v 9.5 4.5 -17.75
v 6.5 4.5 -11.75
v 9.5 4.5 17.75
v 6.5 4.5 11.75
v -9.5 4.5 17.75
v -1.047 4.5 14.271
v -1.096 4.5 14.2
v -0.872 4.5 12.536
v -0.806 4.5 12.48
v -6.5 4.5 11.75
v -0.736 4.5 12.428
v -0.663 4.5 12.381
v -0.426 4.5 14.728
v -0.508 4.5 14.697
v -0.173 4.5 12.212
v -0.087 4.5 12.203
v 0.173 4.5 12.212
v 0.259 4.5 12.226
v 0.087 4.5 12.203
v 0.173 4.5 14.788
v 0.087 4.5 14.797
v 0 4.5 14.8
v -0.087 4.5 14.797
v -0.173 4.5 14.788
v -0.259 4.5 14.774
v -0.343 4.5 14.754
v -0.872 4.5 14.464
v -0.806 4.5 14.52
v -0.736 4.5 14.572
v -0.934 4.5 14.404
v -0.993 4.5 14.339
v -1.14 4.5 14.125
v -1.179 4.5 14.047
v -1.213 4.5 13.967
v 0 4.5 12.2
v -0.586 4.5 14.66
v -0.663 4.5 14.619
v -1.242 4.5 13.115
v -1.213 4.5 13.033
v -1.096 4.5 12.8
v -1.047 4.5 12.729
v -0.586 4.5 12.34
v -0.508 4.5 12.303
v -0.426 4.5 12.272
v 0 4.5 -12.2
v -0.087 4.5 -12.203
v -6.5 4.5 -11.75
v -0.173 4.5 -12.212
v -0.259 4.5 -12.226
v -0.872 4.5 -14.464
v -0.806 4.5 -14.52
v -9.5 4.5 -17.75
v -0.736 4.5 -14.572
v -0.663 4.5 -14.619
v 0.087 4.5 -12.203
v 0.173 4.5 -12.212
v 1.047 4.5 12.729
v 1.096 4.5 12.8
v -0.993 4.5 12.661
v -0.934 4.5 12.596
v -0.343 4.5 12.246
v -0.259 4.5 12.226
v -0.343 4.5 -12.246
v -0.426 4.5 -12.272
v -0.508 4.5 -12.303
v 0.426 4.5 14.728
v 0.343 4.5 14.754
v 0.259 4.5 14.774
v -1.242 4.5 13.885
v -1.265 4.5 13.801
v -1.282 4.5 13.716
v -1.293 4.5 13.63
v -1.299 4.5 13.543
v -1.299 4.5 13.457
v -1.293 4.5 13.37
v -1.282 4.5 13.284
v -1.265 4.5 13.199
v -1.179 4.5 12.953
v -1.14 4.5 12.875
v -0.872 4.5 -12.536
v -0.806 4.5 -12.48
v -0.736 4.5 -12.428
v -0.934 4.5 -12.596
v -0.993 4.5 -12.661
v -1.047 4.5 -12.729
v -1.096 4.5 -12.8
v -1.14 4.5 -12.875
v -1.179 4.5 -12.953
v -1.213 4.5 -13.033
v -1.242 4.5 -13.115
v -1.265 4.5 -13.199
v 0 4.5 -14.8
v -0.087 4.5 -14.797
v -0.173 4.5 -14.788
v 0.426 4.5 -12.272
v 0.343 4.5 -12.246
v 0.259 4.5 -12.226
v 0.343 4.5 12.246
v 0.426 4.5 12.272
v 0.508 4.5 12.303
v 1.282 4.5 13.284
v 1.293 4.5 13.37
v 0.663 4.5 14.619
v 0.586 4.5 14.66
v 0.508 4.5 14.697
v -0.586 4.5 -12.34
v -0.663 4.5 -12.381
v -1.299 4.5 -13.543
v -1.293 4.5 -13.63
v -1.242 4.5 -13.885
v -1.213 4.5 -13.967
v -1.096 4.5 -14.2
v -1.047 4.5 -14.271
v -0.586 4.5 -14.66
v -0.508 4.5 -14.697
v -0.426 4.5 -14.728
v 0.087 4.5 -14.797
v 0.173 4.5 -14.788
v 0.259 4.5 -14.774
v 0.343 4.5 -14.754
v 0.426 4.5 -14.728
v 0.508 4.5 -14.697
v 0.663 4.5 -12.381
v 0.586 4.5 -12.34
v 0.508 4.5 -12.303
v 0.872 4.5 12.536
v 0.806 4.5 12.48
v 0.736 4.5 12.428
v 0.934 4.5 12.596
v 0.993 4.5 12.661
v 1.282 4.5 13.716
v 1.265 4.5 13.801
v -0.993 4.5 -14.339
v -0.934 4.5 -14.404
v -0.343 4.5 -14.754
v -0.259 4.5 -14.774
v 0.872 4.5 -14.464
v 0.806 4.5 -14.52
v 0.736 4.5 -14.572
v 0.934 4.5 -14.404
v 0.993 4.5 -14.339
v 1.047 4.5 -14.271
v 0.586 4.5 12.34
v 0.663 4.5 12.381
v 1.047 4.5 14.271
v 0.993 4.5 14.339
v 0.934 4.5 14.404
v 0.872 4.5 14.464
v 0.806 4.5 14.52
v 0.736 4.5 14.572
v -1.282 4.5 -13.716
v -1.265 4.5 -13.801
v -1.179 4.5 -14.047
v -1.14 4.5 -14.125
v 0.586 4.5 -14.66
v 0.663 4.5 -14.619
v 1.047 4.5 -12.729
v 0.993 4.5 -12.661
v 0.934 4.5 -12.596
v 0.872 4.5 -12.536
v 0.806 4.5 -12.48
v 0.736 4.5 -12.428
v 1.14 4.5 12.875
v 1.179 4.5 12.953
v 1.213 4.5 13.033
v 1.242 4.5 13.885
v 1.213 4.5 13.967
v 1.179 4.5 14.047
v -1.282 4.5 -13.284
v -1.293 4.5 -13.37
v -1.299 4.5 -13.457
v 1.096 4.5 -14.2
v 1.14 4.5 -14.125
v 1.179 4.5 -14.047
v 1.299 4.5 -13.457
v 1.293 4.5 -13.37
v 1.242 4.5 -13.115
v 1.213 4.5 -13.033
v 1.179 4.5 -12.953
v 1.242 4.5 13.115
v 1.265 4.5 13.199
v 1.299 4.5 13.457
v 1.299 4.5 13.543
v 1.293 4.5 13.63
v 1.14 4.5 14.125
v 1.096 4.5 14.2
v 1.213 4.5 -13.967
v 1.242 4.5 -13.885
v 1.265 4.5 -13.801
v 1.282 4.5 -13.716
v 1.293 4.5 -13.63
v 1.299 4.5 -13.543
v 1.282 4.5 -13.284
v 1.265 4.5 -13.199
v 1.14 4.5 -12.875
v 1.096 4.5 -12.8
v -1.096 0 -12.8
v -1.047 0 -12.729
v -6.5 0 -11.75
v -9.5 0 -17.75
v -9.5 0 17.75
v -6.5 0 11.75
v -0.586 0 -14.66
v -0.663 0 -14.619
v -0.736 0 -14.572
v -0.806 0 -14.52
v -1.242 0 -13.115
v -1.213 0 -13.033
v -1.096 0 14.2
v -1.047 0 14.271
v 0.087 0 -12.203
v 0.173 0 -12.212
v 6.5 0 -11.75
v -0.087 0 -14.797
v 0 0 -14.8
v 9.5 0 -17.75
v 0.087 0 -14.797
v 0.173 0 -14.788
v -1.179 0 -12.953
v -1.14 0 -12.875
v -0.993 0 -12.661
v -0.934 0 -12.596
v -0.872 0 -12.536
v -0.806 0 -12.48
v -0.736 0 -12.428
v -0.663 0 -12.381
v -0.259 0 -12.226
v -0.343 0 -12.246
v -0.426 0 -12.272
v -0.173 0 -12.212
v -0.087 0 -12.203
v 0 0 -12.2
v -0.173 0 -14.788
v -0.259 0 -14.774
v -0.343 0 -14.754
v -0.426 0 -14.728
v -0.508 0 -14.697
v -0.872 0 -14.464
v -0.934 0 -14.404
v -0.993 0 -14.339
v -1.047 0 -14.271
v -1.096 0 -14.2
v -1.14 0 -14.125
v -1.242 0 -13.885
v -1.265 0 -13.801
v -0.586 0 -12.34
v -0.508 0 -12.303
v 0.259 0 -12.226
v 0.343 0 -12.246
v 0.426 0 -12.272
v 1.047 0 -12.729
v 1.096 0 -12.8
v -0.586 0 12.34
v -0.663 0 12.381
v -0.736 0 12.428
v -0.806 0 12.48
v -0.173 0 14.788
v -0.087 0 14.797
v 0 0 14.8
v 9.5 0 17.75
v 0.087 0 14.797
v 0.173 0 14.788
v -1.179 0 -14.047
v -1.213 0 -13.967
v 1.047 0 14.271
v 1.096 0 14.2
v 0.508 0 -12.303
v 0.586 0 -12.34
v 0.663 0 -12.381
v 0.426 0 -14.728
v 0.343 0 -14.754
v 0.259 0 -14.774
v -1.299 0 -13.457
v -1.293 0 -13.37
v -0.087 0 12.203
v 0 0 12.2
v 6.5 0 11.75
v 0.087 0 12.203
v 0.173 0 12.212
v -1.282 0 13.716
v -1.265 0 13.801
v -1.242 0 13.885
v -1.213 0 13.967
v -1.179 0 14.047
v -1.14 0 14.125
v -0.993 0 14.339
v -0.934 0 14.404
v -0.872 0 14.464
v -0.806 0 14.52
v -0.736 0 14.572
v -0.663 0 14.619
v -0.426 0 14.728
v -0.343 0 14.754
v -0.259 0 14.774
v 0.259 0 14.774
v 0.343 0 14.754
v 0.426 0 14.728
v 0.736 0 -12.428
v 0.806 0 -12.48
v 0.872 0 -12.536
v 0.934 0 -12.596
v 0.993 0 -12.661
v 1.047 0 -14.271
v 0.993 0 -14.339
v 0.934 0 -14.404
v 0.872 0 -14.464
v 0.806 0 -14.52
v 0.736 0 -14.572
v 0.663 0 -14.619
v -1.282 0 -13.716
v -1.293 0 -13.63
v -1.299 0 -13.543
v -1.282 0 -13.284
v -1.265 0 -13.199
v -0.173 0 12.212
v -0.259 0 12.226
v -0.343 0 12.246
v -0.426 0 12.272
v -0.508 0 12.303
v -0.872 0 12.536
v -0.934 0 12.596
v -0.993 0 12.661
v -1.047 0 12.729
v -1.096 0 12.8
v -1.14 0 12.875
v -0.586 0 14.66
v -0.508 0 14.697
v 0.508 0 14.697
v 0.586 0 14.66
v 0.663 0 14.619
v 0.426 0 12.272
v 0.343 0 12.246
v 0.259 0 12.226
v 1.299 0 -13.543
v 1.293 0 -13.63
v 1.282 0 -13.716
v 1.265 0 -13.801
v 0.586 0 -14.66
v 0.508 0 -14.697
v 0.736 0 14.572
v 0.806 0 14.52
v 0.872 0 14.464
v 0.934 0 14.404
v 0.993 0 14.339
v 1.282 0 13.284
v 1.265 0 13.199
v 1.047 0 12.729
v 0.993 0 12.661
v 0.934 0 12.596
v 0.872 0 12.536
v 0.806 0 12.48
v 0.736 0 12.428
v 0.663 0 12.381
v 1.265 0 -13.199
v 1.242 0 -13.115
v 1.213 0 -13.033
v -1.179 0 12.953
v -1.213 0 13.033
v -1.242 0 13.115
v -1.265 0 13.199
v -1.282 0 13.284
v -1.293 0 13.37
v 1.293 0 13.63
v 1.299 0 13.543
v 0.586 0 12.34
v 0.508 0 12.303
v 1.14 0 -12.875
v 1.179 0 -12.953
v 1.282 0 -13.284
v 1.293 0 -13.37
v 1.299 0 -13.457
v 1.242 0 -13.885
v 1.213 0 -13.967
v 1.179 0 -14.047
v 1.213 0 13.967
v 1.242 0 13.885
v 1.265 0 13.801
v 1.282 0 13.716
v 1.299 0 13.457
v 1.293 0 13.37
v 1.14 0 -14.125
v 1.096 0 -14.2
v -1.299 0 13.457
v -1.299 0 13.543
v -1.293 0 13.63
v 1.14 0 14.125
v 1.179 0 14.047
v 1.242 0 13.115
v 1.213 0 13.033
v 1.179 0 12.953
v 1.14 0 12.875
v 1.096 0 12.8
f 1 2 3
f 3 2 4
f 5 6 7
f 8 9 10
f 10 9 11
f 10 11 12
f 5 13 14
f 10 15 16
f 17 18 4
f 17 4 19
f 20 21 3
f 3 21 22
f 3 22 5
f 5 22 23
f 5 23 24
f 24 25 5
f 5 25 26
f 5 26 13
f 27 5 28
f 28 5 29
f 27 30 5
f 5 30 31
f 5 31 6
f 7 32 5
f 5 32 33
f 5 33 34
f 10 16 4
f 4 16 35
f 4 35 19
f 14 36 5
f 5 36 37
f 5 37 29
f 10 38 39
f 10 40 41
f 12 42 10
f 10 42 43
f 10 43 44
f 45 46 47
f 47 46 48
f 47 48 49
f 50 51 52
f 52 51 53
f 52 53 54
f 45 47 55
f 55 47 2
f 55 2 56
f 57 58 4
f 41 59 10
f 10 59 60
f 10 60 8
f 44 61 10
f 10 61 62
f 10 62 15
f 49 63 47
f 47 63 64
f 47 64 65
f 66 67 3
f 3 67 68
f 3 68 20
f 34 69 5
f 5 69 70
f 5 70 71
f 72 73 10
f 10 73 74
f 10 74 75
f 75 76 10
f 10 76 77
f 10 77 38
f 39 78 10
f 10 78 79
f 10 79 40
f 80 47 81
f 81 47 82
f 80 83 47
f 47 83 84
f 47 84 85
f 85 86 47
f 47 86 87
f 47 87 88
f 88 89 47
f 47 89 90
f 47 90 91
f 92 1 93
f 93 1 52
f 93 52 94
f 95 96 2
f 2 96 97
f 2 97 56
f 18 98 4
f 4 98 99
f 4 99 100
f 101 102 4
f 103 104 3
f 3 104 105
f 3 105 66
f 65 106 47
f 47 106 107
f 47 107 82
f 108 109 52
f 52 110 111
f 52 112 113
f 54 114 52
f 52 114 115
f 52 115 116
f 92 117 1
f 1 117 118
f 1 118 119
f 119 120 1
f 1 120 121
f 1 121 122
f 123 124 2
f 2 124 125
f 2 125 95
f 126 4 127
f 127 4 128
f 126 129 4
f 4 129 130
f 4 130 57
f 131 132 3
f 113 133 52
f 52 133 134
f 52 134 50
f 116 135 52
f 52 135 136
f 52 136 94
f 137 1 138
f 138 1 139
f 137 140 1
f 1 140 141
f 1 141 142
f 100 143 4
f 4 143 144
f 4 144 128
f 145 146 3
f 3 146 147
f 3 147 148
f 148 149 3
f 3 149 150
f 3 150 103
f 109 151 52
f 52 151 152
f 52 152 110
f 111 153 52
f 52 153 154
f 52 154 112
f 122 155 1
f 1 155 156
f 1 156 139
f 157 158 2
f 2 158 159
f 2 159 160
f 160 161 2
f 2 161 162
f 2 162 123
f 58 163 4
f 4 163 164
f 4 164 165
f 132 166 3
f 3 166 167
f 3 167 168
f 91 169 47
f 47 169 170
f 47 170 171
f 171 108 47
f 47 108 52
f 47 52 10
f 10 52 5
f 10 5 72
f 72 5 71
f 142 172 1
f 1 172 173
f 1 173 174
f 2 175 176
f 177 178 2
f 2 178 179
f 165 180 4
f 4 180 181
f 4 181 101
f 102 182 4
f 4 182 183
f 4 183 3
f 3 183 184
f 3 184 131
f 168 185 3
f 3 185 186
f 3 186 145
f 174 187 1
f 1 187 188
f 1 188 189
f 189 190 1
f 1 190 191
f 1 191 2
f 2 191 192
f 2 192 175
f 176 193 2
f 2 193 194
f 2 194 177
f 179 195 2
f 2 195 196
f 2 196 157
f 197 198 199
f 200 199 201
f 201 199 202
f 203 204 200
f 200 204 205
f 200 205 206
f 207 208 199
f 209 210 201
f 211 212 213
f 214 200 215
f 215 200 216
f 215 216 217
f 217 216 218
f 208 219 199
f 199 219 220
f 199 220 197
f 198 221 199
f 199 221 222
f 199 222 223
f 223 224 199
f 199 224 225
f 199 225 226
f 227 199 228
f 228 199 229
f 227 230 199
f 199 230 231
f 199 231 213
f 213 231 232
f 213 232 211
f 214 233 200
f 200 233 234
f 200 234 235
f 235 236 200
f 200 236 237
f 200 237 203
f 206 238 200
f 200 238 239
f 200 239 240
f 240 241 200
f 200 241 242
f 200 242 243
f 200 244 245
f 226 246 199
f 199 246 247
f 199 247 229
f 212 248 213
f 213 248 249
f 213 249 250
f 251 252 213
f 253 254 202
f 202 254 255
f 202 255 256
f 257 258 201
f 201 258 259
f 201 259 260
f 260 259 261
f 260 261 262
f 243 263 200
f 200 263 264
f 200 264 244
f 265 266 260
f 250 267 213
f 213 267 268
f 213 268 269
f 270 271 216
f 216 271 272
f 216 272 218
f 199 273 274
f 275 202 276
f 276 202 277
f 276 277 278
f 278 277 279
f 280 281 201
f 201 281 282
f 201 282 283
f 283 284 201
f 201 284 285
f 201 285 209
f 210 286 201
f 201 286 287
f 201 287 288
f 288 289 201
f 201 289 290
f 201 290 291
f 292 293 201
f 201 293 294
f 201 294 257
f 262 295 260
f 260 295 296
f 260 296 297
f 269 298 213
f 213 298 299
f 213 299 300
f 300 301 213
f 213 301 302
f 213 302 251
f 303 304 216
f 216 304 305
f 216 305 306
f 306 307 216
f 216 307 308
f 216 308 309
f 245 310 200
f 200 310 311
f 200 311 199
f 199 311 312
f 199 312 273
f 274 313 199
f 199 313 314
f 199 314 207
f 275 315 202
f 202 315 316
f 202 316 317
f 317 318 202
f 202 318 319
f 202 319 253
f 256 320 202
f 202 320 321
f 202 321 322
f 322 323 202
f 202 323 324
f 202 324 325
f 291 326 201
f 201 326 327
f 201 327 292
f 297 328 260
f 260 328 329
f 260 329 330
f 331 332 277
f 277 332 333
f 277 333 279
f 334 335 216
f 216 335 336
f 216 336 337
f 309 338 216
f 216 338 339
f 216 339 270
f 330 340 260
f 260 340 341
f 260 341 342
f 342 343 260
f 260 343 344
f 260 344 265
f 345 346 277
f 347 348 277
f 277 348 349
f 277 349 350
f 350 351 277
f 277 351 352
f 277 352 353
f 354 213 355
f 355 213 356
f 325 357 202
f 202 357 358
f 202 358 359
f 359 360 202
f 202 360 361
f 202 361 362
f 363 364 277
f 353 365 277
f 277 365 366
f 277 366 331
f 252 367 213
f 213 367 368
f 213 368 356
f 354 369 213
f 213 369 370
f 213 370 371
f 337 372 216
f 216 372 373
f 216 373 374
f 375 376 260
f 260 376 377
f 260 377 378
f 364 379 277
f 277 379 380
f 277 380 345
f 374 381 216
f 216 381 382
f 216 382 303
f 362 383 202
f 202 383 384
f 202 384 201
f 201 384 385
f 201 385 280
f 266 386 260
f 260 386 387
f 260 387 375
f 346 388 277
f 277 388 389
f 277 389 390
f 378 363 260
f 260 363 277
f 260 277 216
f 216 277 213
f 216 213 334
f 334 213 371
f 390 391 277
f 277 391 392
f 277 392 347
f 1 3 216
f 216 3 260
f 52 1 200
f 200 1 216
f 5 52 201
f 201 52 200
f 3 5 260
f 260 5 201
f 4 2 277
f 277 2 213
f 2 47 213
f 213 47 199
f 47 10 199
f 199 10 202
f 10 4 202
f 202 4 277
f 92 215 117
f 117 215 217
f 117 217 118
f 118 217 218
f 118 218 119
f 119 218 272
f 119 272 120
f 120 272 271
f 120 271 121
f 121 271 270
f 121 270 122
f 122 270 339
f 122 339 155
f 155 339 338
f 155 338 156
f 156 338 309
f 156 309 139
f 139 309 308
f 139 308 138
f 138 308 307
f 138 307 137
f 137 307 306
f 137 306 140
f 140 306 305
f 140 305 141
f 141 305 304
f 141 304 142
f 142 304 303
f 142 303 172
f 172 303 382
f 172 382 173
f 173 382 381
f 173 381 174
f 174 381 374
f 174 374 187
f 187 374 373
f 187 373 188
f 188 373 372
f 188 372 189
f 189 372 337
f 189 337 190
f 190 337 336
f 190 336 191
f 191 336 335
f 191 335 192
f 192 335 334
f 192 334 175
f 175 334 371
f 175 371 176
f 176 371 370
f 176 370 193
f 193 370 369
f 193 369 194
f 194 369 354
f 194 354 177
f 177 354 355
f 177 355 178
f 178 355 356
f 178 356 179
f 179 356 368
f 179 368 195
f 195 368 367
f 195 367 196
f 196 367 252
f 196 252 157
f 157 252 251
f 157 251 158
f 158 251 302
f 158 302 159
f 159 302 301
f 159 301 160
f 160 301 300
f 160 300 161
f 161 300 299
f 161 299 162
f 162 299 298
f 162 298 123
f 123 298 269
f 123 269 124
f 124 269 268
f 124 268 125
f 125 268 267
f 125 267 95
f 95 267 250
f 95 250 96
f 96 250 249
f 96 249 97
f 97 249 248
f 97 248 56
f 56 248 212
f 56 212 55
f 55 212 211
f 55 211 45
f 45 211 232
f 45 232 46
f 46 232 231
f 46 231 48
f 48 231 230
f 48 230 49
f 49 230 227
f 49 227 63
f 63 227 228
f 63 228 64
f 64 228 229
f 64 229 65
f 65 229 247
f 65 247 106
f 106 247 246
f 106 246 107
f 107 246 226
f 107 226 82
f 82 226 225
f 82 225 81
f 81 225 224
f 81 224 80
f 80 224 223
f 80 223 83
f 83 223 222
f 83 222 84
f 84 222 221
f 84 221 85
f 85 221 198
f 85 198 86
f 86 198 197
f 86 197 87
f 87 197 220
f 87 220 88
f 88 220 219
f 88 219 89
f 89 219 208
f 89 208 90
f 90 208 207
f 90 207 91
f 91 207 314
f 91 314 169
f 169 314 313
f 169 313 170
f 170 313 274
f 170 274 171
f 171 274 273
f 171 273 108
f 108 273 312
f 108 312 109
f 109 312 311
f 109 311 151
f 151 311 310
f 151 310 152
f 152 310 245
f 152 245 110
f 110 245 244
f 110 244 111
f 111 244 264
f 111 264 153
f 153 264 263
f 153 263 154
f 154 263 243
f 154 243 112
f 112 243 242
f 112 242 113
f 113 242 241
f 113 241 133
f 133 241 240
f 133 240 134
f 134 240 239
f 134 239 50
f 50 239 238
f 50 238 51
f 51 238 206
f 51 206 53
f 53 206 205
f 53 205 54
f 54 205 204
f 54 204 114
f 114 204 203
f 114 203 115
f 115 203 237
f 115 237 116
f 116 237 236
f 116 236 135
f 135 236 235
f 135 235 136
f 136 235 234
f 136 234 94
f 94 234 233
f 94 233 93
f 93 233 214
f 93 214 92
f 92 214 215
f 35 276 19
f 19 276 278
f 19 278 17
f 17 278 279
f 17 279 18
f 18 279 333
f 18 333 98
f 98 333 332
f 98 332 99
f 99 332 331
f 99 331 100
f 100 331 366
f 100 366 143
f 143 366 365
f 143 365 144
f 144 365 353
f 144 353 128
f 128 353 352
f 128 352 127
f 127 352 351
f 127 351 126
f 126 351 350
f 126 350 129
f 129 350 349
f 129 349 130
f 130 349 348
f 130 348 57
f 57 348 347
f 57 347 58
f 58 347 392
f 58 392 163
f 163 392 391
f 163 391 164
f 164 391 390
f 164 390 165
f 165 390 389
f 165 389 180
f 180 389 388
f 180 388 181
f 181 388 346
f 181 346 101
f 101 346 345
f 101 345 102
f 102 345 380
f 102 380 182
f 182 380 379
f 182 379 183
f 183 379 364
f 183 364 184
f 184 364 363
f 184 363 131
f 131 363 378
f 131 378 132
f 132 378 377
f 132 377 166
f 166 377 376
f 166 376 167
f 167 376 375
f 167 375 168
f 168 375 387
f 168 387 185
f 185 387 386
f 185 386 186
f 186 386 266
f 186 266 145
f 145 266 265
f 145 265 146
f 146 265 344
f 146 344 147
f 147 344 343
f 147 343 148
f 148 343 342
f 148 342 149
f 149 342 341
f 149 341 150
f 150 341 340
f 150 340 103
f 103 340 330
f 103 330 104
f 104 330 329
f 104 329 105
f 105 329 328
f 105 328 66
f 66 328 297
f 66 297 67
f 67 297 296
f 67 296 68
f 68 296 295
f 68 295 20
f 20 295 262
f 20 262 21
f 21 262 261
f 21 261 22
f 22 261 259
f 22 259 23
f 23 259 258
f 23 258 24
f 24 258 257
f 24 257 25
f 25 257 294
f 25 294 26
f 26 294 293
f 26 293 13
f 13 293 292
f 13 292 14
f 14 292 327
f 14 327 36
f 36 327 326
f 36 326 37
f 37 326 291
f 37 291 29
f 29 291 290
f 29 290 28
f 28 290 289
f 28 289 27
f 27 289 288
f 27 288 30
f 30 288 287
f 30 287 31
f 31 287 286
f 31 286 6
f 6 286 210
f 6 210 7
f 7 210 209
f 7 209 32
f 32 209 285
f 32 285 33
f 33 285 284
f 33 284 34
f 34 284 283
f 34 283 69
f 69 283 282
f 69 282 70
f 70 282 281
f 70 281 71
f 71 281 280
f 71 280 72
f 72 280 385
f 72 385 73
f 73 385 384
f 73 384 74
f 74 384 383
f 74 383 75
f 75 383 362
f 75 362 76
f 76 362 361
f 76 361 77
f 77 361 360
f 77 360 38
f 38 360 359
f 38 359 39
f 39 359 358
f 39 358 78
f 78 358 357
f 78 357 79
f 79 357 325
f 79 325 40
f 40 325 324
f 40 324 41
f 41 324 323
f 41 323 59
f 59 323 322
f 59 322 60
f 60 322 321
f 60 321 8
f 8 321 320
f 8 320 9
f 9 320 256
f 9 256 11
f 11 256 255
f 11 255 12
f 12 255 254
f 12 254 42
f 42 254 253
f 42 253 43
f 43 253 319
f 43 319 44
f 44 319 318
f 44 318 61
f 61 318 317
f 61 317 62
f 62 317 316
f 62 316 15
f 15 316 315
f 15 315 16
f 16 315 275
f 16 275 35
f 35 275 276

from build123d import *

# Parameters (mm, degrees)
SKETCH1_W           = 19
SKETCH1_H           = 35.5
SKETCH1_R           = 1.3
SKETCH1_W_2         = 13
SKETCH1_H_2         = 23.5
BOSS_EXTRUDE1_DEPTH = 4.5


with BuildPart() as part:
    # Sketch1 → Boss-Extrude1 (new body)
    with BuildSketch(Plane(origin=(0, 0, 0), x_dir=(1, 0, 0), z_dir=(0, 1, 0))):
        Rectangle(SKETCH1_W, SKETCH1_H)
        with Locations((0, 13.5)):
            Circle(SKETCH1_R, mode=Mode.SUBTRACT)
        with Locations((0, -13.5)):
            Circle(SKETCH1_R, mode=Mode.SUBTRACT)
        Rectangle(SKETCH1_W_2, SKETCH1_H_2, mode=Mode.SUBTRACT)
    extrude(amount=BOSS_EXTRUDE1_DEPTH)


solid = part.part
